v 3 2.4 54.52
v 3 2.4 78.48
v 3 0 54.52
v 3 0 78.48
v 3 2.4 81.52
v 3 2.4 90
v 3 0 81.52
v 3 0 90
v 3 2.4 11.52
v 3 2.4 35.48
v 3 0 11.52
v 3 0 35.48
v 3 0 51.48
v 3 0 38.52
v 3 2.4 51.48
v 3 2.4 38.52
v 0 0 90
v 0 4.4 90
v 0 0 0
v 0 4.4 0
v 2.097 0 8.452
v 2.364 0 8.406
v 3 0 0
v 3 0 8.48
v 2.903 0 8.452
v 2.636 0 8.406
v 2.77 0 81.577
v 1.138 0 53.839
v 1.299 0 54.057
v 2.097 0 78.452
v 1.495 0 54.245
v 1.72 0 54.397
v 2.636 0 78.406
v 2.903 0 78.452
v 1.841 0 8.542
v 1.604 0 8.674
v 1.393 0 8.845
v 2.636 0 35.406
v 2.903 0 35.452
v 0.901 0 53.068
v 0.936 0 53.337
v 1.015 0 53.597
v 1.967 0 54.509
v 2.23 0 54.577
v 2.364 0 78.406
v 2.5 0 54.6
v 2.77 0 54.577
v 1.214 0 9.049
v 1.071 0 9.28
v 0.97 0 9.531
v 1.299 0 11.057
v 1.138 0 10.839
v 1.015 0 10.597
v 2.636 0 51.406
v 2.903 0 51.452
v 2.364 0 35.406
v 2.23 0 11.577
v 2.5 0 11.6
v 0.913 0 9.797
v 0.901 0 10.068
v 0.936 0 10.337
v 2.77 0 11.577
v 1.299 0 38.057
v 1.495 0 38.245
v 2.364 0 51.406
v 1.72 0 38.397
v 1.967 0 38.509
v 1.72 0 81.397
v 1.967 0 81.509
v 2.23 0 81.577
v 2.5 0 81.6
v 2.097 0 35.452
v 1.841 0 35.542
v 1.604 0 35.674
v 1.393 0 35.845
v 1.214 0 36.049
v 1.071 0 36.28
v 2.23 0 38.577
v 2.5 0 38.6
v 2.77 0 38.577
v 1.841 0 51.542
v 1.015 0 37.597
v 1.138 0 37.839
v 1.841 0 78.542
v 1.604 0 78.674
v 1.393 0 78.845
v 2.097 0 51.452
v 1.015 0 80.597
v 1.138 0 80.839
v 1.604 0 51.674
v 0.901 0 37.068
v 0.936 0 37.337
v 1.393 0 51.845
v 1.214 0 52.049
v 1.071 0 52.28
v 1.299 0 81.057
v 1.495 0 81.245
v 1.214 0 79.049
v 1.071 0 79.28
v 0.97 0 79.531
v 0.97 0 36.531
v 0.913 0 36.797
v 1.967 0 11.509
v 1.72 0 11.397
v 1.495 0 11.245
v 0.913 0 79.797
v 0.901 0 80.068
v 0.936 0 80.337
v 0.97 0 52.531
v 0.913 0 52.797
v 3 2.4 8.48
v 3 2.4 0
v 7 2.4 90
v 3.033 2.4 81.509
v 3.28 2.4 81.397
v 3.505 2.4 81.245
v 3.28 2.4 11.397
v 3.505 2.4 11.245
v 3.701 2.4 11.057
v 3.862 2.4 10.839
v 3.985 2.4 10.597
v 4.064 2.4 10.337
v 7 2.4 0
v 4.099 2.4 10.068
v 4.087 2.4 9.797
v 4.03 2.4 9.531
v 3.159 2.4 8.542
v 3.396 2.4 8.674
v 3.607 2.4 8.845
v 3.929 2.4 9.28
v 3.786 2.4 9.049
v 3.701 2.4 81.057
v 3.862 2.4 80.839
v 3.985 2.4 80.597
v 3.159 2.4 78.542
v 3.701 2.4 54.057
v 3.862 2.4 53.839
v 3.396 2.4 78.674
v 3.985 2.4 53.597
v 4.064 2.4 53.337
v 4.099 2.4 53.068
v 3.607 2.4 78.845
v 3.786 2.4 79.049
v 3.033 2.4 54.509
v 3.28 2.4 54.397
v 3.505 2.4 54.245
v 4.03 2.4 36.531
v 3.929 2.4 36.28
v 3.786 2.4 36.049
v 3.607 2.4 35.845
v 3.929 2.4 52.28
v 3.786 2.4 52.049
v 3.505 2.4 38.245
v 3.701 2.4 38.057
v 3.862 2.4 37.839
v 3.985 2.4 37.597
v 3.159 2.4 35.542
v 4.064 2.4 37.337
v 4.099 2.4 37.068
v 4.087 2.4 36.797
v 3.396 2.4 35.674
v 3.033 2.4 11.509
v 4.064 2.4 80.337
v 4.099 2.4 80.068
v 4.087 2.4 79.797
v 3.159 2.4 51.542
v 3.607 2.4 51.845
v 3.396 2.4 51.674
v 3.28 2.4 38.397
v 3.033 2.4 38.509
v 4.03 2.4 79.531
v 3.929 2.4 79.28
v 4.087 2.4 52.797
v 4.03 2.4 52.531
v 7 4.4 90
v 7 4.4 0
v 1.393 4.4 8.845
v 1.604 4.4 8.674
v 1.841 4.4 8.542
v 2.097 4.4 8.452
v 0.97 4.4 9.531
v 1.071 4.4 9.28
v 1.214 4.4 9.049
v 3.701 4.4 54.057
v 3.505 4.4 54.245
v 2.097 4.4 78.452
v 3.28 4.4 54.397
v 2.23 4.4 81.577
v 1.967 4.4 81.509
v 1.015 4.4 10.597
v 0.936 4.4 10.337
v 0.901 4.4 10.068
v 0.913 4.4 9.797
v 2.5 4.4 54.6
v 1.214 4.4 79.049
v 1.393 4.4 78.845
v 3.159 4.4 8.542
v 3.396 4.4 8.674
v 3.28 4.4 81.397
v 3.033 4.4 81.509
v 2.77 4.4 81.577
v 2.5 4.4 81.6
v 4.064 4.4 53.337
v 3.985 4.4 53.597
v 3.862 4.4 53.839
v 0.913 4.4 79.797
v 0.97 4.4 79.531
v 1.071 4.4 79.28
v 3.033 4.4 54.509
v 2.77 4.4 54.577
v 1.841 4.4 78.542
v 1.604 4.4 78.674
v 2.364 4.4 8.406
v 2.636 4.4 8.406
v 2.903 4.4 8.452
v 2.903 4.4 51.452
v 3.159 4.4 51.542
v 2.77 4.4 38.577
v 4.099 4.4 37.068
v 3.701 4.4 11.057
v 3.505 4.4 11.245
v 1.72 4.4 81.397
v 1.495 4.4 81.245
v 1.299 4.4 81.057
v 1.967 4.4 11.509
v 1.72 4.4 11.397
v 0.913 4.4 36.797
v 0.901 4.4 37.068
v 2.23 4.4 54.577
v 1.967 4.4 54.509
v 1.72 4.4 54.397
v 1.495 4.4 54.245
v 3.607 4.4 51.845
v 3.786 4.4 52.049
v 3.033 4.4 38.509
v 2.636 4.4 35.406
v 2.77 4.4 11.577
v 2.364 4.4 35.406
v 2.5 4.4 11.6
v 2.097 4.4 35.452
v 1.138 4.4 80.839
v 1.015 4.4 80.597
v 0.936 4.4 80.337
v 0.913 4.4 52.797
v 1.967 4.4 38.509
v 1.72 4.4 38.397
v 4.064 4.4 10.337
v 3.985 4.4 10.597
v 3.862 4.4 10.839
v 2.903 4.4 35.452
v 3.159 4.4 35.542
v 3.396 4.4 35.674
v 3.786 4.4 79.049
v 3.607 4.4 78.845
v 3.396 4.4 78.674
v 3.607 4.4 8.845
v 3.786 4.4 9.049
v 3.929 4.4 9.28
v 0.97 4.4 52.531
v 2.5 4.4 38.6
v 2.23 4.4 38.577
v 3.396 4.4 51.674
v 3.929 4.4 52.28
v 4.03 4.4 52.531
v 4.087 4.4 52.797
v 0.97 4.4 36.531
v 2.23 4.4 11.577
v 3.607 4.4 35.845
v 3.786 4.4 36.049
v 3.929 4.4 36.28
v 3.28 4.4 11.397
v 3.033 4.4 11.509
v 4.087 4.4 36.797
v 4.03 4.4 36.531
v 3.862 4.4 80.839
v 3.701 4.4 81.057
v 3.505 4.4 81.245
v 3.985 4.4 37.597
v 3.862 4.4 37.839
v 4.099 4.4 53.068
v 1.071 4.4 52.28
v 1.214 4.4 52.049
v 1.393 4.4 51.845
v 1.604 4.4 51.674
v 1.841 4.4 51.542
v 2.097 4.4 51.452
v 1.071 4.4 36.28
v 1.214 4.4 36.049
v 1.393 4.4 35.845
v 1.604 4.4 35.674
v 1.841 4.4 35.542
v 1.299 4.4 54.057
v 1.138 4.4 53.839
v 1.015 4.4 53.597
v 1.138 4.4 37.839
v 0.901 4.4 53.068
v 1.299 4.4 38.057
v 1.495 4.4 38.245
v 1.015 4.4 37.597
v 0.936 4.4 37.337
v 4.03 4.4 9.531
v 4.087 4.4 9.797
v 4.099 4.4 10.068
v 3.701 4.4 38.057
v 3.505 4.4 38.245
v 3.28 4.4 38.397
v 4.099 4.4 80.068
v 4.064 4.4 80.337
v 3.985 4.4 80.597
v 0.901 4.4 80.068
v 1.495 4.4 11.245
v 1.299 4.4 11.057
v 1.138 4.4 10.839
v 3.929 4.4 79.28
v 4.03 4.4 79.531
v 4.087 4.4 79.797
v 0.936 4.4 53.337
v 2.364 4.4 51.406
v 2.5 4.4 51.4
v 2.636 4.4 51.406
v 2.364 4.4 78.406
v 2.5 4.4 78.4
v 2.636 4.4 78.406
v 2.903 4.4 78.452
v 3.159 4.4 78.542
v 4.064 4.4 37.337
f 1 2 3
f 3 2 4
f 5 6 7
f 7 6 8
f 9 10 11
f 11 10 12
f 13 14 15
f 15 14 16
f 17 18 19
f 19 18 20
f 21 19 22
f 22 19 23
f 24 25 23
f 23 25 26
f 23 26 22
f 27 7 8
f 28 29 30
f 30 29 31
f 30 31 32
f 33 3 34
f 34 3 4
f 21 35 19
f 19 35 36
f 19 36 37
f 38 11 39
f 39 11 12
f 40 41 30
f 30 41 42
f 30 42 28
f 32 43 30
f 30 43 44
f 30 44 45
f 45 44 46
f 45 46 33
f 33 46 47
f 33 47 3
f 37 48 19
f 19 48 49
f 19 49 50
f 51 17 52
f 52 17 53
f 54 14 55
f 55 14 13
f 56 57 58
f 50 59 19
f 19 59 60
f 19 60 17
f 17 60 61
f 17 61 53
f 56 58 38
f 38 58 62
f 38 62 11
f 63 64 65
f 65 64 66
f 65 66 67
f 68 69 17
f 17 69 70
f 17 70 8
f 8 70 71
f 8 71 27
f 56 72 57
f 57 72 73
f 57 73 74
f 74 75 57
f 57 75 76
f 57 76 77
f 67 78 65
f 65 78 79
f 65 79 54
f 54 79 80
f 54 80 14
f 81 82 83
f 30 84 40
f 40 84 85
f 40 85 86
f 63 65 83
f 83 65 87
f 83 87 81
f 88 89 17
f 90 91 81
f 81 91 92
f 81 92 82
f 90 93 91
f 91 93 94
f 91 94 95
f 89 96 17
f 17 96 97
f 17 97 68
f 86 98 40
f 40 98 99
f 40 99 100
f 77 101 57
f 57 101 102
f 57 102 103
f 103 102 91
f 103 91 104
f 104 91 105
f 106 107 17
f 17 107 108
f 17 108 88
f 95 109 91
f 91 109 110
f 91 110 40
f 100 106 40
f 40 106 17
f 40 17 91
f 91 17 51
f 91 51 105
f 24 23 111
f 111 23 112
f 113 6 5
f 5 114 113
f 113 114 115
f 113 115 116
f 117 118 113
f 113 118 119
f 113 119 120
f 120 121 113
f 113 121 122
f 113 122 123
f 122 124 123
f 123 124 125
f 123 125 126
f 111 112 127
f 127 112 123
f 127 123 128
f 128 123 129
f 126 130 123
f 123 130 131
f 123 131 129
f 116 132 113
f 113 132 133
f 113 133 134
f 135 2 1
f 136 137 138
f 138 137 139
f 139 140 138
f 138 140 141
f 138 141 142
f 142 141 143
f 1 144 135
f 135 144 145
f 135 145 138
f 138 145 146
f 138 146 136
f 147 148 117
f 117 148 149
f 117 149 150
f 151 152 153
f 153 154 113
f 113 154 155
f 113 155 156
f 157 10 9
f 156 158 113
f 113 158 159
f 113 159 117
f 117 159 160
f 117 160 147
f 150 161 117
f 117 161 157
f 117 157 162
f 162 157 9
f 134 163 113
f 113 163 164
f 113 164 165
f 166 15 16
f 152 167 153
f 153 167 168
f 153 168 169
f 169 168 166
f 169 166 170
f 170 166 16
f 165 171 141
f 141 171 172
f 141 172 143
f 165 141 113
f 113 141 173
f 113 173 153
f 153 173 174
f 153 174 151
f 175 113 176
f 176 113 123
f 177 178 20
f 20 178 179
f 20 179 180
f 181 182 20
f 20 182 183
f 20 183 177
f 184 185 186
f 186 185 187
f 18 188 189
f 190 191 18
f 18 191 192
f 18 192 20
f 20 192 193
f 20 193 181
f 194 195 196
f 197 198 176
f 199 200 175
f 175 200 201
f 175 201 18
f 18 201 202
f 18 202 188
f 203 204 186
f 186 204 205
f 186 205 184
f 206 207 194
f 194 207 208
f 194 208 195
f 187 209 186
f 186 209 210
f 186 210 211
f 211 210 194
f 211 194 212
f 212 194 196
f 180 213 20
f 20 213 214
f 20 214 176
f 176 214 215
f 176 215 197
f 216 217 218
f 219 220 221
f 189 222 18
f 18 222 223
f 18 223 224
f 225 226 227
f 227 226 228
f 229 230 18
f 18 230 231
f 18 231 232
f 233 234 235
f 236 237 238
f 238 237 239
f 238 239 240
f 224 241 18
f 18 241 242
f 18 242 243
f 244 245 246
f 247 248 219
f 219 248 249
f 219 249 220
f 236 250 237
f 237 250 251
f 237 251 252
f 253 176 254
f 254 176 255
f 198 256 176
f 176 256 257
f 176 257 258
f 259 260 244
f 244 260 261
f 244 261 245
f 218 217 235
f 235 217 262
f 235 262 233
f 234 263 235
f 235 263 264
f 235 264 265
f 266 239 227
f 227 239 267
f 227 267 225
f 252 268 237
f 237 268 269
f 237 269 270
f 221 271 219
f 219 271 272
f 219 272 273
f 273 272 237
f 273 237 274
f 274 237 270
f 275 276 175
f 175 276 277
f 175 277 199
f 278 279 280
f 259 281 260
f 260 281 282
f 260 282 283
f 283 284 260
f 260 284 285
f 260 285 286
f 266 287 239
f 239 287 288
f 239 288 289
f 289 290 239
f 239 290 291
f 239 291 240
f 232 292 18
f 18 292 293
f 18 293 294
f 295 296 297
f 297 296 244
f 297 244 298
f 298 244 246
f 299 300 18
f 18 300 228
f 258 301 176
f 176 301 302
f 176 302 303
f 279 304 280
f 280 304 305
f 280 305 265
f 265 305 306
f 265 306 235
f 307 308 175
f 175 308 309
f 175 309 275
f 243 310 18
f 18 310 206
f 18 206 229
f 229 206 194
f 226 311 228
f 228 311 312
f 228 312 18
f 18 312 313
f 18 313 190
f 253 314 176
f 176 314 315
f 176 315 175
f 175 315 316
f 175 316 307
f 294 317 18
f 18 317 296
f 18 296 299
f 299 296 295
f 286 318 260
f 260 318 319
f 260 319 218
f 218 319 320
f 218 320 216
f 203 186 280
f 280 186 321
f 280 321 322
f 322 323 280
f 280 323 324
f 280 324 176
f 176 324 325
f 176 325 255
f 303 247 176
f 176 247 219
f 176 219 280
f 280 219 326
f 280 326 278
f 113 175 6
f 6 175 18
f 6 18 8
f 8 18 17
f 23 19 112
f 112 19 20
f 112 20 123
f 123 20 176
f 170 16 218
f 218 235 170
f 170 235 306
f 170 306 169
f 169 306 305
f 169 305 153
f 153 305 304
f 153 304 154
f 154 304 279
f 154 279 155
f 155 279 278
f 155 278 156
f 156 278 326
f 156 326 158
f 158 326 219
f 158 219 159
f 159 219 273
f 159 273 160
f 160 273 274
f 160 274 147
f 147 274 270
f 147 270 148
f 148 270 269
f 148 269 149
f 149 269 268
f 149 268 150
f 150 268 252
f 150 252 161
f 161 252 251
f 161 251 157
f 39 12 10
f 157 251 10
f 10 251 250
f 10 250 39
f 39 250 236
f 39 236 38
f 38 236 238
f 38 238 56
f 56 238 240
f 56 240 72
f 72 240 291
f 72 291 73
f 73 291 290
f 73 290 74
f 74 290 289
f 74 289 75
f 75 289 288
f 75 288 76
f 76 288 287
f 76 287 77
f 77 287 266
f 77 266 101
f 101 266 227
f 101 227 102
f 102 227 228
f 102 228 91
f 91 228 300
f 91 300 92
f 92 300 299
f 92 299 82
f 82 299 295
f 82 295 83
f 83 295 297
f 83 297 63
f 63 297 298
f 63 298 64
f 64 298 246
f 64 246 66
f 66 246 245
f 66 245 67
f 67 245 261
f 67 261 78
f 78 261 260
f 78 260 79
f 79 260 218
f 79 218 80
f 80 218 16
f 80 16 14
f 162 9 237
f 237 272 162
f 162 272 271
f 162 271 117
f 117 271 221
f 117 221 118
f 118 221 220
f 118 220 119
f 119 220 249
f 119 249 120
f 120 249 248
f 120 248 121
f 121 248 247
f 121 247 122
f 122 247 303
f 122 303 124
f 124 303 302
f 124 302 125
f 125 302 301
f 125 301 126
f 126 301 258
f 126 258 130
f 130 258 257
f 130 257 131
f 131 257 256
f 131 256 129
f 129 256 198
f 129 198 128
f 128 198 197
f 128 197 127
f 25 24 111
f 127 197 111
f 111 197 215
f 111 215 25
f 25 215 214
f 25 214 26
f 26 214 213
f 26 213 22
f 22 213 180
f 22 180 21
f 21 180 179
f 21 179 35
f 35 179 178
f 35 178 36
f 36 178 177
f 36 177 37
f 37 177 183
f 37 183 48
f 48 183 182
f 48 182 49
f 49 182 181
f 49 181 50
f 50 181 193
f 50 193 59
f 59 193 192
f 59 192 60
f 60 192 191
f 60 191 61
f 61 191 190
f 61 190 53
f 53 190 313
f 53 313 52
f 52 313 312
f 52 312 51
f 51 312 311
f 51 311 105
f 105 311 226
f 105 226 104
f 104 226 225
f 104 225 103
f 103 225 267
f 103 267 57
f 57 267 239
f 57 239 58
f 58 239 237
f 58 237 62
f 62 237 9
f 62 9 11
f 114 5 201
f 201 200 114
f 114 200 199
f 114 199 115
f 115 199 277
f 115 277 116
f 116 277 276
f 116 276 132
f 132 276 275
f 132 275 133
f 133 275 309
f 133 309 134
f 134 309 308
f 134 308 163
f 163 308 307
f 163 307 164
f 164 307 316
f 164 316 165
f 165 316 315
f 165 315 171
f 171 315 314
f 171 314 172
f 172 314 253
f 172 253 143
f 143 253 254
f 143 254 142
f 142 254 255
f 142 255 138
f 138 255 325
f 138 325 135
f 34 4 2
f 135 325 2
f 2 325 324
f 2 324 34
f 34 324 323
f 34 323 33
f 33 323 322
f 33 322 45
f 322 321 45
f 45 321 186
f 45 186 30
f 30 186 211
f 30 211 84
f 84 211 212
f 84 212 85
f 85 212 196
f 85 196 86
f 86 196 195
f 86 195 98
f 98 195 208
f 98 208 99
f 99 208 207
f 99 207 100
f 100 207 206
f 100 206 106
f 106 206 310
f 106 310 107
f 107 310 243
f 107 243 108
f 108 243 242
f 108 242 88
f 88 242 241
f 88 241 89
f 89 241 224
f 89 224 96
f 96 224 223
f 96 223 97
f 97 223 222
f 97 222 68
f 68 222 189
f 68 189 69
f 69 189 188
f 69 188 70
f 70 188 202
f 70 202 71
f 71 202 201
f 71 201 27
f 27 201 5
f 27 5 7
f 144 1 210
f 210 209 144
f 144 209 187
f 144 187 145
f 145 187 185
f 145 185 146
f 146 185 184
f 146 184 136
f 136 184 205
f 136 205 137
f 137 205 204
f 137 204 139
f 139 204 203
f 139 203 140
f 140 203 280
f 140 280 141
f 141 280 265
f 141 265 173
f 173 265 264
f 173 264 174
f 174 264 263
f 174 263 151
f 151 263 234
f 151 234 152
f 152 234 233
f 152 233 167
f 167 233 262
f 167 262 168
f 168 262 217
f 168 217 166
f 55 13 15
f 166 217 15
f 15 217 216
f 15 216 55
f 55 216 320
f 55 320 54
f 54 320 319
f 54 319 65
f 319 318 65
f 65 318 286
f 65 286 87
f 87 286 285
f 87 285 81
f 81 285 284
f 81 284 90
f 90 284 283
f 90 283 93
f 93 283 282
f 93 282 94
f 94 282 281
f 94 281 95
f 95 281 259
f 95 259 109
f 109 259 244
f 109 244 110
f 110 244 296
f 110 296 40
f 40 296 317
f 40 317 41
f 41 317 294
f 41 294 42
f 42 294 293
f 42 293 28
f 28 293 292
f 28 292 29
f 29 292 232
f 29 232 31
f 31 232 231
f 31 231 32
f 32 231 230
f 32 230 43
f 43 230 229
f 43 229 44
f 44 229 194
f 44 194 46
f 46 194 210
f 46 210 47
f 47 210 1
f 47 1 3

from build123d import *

# Parameters (mm, degrees)
EXTRUDE_1_DEPTH     = 90
SKETCH_2_R          = 1.6
CUT_EXTRUDE_1_DEPTH = 91.378979857


with BuildPart() as part:
    # 草图1 → 凸台-拉伸1 (new body)
    with BuildSketch(Plane.XY):
        Polygon((3, 0), (3, 2.4), (7, 2.4), (7, 4.4), (0, 4.4), (0, 0), align=None)
    extrude(amount=EXTRUDE_1_DEPTH)

    # 草图2 → 切除-拉伸1 (cut, through all)
    with BuildSketch(Plane(origin=(0, 4.4, 0), x_dir=(1, 0, 0), z_dir=(0, 1, 0))):
        with Locations(Location((2.5, -37, 0), (0, 0, 270))):
            Circle(SKETCH_2_R)
        with Locations(Location((2.5, -10, 0), (0, 0, 270))):
            Circle(SKETCH_2_R)
        with Locations(Location((2.5, -80, 0), (0, 0, 288.209956864))):
            Circle(SKETCH_2_R)
        with Locations(Location((2.5, -53, 0), (0, 0, 288.209956864))):
            Circle(SKETCH_2_R)
    extrude(amount=-CUT_EXTRUDE_1_DEPTH, mode=Mode.SUBTRACT)


solid = part.part
